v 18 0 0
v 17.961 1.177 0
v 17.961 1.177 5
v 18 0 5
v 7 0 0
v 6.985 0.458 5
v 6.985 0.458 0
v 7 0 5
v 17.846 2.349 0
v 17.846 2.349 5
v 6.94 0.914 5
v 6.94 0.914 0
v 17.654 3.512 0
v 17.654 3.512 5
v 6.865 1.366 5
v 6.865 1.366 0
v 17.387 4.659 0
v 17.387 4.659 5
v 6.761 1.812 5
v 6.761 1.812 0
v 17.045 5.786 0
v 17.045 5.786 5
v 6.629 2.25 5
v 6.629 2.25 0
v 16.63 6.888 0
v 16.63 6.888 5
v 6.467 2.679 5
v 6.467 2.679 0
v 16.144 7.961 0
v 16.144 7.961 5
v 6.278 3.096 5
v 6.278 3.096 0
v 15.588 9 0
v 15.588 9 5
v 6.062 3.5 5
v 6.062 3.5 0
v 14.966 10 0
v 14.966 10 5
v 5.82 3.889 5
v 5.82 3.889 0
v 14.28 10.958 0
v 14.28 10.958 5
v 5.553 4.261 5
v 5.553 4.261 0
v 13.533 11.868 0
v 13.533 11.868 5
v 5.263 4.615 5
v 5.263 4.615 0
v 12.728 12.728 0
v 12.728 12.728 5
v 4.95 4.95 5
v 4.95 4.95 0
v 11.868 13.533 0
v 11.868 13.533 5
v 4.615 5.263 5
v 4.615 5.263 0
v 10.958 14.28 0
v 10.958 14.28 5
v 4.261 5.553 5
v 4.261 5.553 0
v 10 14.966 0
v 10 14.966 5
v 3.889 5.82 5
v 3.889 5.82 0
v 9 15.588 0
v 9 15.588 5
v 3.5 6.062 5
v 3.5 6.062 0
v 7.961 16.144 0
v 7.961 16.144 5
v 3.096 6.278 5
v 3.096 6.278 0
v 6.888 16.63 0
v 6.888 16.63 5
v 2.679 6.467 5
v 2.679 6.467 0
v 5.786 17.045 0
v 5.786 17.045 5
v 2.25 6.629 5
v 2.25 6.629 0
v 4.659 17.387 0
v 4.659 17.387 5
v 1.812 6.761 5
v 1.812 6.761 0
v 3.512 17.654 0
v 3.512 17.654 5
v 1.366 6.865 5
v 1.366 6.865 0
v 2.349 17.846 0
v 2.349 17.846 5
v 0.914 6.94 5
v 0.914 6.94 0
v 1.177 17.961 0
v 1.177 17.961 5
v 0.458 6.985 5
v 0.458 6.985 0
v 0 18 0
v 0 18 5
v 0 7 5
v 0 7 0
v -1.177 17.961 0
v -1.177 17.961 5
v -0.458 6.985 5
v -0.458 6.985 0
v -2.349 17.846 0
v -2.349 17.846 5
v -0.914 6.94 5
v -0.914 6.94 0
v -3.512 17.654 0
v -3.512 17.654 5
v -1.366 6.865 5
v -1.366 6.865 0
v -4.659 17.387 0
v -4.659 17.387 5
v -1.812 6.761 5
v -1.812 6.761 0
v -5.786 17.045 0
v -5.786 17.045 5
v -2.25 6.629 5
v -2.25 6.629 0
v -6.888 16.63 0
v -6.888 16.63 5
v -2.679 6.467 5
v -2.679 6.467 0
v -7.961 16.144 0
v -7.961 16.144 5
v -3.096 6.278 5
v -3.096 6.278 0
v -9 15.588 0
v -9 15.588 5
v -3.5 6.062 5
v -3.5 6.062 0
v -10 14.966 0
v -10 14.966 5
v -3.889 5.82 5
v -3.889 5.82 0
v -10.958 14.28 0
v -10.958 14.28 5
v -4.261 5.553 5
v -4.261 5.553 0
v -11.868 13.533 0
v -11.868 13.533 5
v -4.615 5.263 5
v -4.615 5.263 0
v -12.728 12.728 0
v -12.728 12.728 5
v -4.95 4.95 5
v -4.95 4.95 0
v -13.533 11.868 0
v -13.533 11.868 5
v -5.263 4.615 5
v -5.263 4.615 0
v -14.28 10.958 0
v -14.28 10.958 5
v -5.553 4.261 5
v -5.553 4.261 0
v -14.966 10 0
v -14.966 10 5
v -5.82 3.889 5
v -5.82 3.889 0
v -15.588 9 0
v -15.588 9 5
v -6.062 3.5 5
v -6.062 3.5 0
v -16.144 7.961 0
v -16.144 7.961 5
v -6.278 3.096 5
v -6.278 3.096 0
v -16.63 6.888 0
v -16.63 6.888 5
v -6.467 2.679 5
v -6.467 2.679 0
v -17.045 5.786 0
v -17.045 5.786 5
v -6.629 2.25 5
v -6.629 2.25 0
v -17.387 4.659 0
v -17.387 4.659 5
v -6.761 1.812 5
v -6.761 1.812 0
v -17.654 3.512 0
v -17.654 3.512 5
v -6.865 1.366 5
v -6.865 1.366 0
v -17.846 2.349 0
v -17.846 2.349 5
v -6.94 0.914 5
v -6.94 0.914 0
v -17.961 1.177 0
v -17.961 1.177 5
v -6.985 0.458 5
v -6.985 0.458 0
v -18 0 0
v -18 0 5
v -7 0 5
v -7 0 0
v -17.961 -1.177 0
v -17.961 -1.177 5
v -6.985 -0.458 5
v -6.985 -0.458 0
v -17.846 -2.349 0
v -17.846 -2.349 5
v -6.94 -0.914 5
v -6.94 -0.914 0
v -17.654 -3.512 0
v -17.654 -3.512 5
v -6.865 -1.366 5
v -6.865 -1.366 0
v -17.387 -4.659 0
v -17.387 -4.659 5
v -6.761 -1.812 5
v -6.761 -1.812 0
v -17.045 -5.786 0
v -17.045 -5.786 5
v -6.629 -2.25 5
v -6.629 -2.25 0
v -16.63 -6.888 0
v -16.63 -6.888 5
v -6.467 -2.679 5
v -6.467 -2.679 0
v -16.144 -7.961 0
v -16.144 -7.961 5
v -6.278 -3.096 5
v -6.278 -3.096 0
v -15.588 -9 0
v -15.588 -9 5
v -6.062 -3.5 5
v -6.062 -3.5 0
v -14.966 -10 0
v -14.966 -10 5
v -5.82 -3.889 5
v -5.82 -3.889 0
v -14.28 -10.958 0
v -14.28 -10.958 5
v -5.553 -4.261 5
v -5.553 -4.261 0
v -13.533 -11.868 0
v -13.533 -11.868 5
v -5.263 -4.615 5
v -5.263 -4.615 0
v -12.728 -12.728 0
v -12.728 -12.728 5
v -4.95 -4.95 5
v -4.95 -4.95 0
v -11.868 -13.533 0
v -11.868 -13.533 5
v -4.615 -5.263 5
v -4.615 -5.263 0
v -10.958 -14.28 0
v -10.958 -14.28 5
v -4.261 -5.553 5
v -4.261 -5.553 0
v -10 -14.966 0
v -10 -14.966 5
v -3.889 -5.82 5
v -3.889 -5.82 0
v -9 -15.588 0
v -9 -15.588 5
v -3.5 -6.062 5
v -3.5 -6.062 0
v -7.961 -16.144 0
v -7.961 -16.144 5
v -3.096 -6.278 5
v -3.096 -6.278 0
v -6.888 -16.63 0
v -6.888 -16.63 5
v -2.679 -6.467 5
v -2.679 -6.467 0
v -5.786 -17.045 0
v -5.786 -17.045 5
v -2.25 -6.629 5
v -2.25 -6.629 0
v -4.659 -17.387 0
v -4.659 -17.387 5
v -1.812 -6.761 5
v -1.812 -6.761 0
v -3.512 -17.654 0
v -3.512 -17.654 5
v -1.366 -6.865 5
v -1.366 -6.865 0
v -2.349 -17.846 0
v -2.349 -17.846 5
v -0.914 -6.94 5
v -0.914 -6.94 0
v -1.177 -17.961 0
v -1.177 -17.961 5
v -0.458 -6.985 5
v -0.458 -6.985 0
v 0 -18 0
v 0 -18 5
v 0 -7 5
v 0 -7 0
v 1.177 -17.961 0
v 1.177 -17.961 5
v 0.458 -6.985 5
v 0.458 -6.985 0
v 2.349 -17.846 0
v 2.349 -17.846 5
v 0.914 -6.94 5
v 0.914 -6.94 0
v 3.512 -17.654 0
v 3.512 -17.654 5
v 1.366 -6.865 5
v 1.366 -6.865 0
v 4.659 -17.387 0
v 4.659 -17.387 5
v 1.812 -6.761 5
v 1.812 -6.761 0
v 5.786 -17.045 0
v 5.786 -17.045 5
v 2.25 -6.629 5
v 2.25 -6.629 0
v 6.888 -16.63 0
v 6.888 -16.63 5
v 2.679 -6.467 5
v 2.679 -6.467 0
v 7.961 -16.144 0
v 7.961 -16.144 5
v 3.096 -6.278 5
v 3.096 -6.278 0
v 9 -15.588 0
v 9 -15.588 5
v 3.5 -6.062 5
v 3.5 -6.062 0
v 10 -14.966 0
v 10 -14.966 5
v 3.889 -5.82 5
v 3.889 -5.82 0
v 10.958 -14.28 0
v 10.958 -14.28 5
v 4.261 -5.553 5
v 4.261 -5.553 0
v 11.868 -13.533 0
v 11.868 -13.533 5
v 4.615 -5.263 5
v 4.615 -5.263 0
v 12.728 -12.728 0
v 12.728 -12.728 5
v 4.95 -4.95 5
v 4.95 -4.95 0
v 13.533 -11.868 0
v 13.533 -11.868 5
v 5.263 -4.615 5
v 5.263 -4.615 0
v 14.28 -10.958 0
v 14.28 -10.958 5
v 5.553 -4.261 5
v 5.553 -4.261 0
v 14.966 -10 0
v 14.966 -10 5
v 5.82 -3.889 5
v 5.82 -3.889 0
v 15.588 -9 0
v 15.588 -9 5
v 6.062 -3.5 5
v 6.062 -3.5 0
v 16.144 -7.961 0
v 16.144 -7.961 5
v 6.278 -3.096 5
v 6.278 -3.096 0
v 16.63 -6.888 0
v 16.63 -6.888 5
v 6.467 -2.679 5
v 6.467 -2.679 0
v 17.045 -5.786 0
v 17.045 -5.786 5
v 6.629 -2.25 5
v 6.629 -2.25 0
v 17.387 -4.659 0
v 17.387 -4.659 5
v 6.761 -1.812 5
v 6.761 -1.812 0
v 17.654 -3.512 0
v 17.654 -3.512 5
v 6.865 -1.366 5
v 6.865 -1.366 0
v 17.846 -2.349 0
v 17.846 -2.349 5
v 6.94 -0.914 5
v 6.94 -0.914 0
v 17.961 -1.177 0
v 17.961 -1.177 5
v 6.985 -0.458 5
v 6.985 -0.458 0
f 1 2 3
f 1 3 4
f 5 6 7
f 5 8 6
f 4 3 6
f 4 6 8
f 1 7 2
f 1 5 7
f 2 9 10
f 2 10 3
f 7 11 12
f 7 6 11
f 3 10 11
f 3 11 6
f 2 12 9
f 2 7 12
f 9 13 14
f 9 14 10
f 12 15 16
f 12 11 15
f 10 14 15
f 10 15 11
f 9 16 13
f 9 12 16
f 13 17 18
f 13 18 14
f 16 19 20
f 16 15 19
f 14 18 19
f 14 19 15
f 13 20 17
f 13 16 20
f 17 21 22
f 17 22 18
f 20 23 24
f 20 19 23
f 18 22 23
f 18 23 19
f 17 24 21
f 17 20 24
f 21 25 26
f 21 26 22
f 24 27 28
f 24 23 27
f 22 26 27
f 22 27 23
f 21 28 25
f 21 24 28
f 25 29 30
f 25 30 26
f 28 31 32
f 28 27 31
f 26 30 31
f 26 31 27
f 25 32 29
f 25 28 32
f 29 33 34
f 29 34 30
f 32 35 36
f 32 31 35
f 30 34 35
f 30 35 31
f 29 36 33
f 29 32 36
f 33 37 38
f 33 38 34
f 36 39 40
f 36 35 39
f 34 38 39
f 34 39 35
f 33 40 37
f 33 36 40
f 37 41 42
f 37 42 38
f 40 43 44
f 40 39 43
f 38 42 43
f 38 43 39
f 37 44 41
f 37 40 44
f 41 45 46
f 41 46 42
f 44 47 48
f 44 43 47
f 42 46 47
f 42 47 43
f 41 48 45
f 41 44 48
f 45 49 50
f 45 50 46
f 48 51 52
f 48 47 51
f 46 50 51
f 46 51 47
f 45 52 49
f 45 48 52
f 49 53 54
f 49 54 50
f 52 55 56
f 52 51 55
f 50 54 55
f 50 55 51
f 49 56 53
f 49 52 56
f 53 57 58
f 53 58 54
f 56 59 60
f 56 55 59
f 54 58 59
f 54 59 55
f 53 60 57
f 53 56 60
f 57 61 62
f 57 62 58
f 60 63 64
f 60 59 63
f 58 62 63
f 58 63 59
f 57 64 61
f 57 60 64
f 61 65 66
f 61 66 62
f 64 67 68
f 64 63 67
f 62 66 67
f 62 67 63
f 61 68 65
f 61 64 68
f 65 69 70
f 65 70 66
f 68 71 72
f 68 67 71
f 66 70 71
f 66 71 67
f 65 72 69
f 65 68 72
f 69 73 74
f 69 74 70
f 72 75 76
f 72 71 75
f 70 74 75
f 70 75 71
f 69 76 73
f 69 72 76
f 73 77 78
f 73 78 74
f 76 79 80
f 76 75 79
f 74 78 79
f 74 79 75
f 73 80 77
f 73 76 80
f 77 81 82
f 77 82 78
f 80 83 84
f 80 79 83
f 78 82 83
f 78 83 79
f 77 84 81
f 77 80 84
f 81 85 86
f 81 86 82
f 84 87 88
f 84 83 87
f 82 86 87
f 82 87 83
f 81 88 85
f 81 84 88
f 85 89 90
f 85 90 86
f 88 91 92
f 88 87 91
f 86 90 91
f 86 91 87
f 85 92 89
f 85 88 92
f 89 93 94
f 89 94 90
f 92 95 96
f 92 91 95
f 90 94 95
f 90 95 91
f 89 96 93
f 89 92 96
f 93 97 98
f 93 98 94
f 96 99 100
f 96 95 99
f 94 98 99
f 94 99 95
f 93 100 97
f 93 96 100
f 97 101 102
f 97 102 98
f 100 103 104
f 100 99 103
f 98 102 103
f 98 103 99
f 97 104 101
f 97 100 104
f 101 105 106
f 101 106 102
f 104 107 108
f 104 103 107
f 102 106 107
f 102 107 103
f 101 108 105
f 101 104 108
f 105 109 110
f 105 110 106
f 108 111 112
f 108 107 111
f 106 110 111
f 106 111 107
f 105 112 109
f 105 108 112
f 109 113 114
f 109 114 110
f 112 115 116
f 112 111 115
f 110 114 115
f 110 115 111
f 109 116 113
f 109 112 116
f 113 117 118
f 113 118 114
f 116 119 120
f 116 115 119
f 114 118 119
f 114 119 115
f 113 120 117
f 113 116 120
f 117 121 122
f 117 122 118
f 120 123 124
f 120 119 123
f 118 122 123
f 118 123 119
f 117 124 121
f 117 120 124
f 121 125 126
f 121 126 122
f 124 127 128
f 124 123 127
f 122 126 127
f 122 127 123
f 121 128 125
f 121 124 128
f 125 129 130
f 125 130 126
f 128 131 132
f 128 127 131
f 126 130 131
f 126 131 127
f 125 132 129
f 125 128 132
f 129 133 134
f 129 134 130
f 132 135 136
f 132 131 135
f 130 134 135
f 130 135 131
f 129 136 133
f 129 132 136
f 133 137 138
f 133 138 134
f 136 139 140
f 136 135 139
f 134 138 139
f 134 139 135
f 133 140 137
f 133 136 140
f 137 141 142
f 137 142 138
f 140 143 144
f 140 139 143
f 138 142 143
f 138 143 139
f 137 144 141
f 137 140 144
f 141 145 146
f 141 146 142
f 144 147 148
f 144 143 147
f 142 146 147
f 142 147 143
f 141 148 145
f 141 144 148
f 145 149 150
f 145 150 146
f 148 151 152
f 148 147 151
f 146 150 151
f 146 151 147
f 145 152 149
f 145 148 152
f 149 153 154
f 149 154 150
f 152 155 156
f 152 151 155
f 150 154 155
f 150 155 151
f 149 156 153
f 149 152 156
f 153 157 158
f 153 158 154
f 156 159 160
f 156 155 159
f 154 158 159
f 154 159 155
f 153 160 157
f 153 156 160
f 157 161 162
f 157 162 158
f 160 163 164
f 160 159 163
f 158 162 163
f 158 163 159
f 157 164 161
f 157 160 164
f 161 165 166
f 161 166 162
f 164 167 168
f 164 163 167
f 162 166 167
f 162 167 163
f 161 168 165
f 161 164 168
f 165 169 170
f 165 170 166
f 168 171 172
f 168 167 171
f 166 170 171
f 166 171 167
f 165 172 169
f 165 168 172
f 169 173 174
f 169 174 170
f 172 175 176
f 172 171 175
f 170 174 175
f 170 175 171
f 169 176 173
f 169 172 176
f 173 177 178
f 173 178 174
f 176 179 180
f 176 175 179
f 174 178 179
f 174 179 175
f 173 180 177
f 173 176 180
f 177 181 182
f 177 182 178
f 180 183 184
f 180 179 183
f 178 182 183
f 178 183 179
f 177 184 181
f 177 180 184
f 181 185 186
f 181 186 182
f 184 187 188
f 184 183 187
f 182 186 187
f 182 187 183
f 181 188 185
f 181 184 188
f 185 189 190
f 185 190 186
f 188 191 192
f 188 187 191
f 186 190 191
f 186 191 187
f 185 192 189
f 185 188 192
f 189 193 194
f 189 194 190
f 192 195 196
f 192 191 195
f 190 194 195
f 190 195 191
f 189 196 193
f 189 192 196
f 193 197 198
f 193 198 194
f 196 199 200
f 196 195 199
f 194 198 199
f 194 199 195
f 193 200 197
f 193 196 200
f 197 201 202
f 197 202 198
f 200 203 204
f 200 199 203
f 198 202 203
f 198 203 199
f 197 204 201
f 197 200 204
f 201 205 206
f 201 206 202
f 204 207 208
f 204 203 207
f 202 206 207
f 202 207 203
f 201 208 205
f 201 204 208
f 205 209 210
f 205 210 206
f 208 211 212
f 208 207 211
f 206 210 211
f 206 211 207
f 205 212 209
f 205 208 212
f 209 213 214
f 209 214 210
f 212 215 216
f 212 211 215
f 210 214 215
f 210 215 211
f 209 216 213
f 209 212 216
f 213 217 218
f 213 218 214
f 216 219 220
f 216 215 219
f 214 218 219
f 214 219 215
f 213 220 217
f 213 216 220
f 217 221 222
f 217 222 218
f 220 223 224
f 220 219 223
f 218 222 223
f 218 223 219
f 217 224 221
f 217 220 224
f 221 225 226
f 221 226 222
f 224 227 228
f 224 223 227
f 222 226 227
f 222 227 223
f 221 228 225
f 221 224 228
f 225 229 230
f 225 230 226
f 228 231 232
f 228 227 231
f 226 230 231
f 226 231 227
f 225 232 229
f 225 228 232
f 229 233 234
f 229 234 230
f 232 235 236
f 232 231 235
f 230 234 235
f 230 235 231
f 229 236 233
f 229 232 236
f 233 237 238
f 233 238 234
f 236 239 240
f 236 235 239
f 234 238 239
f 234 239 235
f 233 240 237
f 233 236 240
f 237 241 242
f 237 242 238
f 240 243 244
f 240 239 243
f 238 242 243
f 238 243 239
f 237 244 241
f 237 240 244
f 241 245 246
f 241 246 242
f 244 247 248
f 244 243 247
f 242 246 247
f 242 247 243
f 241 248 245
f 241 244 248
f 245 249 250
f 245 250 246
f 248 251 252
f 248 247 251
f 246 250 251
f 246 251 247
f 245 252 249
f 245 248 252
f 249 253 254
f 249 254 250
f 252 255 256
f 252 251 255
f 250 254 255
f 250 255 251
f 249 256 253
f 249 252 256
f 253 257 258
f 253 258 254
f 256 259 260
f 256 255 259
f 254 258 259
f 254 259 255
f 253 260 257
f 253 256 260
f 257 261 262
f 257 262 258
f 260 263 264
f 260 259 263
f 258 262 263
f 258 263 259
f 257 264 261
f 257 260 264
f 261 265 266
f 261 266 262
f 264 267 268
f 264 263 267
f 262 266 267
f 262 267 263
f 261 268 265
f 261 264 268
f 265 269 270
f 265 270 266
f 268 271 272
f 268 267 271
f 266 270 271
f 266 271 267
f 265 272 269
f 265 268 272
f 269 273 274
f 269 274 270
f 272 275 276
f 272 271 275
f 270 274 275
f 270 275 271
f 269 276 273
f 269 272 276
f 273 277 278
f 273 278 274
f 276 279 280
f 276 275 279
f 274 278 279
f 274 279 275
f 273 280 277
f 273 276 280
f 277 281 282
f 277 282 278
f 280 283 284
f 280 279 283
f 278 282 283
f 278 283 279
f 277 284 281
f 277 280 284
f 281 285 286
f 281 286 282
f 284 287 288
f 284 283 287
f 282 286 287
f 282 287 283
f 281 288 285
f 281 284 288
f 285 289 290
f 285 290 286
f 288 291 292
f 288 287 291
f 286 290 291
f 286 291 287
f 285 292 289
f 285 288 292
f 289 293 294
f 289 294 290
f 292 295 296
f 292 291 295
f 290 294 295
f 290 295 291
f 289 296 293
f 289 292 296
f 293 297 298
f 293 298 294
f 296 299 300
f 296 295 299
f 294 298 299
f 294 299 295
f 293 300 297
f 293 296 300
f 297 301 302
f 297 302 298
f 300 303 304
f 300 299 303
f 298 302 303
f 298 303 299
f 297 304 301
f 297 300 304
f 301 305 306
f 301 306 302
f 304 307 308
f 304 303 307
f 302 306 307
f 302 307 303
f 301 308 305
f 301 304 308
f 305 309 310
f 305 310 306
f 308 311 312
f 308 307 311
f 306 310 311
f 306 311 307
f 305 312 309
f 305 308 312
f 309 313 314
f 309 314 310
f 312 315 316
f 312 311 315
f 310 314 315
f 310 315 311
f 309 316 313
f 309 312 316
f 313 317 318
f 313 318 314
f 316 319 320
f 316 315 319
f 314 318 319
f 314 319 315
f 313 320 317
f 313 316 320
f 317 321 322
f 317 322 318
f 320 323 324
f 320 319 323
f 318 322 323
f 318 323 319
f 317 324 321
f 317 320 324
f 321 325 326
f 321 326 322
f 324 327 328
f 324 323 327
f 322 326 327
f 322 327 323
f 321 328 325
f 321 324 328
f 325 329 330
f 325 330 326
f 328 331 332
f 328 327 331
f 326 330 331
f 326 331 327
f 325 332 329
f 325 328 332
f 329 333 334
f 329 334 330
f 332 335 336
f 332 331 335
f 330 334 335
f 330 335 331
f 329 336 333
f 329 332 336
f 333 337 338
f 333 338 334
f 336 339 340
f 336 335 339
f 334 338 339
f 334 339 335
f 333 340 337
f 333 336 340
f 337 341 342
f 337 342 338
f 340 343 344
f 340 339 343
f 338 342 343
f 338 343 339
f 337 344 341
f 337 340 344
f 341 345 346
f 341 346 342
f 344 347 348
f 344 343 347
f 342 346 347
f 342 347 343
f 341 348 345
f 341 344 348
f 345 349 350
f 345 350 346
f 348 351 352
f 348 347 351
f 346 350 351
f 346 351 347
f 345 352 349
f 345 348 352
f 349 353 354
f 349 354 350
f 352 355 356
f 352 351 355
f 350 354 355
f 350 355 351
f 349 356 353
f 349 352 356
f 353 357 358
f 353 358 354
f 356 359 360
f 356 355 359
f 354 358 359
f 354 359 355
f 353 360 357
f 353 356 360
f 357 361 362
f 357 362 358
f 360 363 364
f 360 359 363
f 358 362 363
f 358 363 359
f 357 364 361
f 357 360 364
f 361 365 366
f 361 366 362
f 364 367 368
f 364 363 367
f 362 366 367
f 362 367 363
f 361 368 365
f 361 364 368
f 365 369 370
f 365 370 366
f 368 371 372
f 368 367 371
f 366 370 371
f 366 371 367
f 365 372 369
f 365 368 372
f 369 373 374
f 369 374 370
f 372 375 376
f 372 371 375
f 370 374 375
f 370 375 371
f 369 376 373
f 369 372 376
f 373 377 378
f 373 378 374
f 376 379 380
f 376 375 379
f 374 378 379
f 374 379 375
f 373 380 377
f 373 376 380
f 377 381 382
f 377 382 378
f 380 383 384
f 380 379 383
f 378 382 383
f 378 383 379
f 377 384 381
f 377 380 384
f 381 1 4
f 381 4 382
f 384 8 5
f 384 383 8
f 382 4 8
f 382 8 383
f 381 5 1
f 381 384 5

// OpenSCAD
// Original MechIntel educational model. CC0-1.0. Units: mm.
// Not a standardized or load-rated component.
$fn=96;
outer_diameter=36;
inner_diameter=14;
height=5;
difference(){ cylinder(d=outer_diameter,h=height); if(inner_diameter>0) translate([0,0,-1]) cylinder(d=inner_diameter,h=height+2); }
